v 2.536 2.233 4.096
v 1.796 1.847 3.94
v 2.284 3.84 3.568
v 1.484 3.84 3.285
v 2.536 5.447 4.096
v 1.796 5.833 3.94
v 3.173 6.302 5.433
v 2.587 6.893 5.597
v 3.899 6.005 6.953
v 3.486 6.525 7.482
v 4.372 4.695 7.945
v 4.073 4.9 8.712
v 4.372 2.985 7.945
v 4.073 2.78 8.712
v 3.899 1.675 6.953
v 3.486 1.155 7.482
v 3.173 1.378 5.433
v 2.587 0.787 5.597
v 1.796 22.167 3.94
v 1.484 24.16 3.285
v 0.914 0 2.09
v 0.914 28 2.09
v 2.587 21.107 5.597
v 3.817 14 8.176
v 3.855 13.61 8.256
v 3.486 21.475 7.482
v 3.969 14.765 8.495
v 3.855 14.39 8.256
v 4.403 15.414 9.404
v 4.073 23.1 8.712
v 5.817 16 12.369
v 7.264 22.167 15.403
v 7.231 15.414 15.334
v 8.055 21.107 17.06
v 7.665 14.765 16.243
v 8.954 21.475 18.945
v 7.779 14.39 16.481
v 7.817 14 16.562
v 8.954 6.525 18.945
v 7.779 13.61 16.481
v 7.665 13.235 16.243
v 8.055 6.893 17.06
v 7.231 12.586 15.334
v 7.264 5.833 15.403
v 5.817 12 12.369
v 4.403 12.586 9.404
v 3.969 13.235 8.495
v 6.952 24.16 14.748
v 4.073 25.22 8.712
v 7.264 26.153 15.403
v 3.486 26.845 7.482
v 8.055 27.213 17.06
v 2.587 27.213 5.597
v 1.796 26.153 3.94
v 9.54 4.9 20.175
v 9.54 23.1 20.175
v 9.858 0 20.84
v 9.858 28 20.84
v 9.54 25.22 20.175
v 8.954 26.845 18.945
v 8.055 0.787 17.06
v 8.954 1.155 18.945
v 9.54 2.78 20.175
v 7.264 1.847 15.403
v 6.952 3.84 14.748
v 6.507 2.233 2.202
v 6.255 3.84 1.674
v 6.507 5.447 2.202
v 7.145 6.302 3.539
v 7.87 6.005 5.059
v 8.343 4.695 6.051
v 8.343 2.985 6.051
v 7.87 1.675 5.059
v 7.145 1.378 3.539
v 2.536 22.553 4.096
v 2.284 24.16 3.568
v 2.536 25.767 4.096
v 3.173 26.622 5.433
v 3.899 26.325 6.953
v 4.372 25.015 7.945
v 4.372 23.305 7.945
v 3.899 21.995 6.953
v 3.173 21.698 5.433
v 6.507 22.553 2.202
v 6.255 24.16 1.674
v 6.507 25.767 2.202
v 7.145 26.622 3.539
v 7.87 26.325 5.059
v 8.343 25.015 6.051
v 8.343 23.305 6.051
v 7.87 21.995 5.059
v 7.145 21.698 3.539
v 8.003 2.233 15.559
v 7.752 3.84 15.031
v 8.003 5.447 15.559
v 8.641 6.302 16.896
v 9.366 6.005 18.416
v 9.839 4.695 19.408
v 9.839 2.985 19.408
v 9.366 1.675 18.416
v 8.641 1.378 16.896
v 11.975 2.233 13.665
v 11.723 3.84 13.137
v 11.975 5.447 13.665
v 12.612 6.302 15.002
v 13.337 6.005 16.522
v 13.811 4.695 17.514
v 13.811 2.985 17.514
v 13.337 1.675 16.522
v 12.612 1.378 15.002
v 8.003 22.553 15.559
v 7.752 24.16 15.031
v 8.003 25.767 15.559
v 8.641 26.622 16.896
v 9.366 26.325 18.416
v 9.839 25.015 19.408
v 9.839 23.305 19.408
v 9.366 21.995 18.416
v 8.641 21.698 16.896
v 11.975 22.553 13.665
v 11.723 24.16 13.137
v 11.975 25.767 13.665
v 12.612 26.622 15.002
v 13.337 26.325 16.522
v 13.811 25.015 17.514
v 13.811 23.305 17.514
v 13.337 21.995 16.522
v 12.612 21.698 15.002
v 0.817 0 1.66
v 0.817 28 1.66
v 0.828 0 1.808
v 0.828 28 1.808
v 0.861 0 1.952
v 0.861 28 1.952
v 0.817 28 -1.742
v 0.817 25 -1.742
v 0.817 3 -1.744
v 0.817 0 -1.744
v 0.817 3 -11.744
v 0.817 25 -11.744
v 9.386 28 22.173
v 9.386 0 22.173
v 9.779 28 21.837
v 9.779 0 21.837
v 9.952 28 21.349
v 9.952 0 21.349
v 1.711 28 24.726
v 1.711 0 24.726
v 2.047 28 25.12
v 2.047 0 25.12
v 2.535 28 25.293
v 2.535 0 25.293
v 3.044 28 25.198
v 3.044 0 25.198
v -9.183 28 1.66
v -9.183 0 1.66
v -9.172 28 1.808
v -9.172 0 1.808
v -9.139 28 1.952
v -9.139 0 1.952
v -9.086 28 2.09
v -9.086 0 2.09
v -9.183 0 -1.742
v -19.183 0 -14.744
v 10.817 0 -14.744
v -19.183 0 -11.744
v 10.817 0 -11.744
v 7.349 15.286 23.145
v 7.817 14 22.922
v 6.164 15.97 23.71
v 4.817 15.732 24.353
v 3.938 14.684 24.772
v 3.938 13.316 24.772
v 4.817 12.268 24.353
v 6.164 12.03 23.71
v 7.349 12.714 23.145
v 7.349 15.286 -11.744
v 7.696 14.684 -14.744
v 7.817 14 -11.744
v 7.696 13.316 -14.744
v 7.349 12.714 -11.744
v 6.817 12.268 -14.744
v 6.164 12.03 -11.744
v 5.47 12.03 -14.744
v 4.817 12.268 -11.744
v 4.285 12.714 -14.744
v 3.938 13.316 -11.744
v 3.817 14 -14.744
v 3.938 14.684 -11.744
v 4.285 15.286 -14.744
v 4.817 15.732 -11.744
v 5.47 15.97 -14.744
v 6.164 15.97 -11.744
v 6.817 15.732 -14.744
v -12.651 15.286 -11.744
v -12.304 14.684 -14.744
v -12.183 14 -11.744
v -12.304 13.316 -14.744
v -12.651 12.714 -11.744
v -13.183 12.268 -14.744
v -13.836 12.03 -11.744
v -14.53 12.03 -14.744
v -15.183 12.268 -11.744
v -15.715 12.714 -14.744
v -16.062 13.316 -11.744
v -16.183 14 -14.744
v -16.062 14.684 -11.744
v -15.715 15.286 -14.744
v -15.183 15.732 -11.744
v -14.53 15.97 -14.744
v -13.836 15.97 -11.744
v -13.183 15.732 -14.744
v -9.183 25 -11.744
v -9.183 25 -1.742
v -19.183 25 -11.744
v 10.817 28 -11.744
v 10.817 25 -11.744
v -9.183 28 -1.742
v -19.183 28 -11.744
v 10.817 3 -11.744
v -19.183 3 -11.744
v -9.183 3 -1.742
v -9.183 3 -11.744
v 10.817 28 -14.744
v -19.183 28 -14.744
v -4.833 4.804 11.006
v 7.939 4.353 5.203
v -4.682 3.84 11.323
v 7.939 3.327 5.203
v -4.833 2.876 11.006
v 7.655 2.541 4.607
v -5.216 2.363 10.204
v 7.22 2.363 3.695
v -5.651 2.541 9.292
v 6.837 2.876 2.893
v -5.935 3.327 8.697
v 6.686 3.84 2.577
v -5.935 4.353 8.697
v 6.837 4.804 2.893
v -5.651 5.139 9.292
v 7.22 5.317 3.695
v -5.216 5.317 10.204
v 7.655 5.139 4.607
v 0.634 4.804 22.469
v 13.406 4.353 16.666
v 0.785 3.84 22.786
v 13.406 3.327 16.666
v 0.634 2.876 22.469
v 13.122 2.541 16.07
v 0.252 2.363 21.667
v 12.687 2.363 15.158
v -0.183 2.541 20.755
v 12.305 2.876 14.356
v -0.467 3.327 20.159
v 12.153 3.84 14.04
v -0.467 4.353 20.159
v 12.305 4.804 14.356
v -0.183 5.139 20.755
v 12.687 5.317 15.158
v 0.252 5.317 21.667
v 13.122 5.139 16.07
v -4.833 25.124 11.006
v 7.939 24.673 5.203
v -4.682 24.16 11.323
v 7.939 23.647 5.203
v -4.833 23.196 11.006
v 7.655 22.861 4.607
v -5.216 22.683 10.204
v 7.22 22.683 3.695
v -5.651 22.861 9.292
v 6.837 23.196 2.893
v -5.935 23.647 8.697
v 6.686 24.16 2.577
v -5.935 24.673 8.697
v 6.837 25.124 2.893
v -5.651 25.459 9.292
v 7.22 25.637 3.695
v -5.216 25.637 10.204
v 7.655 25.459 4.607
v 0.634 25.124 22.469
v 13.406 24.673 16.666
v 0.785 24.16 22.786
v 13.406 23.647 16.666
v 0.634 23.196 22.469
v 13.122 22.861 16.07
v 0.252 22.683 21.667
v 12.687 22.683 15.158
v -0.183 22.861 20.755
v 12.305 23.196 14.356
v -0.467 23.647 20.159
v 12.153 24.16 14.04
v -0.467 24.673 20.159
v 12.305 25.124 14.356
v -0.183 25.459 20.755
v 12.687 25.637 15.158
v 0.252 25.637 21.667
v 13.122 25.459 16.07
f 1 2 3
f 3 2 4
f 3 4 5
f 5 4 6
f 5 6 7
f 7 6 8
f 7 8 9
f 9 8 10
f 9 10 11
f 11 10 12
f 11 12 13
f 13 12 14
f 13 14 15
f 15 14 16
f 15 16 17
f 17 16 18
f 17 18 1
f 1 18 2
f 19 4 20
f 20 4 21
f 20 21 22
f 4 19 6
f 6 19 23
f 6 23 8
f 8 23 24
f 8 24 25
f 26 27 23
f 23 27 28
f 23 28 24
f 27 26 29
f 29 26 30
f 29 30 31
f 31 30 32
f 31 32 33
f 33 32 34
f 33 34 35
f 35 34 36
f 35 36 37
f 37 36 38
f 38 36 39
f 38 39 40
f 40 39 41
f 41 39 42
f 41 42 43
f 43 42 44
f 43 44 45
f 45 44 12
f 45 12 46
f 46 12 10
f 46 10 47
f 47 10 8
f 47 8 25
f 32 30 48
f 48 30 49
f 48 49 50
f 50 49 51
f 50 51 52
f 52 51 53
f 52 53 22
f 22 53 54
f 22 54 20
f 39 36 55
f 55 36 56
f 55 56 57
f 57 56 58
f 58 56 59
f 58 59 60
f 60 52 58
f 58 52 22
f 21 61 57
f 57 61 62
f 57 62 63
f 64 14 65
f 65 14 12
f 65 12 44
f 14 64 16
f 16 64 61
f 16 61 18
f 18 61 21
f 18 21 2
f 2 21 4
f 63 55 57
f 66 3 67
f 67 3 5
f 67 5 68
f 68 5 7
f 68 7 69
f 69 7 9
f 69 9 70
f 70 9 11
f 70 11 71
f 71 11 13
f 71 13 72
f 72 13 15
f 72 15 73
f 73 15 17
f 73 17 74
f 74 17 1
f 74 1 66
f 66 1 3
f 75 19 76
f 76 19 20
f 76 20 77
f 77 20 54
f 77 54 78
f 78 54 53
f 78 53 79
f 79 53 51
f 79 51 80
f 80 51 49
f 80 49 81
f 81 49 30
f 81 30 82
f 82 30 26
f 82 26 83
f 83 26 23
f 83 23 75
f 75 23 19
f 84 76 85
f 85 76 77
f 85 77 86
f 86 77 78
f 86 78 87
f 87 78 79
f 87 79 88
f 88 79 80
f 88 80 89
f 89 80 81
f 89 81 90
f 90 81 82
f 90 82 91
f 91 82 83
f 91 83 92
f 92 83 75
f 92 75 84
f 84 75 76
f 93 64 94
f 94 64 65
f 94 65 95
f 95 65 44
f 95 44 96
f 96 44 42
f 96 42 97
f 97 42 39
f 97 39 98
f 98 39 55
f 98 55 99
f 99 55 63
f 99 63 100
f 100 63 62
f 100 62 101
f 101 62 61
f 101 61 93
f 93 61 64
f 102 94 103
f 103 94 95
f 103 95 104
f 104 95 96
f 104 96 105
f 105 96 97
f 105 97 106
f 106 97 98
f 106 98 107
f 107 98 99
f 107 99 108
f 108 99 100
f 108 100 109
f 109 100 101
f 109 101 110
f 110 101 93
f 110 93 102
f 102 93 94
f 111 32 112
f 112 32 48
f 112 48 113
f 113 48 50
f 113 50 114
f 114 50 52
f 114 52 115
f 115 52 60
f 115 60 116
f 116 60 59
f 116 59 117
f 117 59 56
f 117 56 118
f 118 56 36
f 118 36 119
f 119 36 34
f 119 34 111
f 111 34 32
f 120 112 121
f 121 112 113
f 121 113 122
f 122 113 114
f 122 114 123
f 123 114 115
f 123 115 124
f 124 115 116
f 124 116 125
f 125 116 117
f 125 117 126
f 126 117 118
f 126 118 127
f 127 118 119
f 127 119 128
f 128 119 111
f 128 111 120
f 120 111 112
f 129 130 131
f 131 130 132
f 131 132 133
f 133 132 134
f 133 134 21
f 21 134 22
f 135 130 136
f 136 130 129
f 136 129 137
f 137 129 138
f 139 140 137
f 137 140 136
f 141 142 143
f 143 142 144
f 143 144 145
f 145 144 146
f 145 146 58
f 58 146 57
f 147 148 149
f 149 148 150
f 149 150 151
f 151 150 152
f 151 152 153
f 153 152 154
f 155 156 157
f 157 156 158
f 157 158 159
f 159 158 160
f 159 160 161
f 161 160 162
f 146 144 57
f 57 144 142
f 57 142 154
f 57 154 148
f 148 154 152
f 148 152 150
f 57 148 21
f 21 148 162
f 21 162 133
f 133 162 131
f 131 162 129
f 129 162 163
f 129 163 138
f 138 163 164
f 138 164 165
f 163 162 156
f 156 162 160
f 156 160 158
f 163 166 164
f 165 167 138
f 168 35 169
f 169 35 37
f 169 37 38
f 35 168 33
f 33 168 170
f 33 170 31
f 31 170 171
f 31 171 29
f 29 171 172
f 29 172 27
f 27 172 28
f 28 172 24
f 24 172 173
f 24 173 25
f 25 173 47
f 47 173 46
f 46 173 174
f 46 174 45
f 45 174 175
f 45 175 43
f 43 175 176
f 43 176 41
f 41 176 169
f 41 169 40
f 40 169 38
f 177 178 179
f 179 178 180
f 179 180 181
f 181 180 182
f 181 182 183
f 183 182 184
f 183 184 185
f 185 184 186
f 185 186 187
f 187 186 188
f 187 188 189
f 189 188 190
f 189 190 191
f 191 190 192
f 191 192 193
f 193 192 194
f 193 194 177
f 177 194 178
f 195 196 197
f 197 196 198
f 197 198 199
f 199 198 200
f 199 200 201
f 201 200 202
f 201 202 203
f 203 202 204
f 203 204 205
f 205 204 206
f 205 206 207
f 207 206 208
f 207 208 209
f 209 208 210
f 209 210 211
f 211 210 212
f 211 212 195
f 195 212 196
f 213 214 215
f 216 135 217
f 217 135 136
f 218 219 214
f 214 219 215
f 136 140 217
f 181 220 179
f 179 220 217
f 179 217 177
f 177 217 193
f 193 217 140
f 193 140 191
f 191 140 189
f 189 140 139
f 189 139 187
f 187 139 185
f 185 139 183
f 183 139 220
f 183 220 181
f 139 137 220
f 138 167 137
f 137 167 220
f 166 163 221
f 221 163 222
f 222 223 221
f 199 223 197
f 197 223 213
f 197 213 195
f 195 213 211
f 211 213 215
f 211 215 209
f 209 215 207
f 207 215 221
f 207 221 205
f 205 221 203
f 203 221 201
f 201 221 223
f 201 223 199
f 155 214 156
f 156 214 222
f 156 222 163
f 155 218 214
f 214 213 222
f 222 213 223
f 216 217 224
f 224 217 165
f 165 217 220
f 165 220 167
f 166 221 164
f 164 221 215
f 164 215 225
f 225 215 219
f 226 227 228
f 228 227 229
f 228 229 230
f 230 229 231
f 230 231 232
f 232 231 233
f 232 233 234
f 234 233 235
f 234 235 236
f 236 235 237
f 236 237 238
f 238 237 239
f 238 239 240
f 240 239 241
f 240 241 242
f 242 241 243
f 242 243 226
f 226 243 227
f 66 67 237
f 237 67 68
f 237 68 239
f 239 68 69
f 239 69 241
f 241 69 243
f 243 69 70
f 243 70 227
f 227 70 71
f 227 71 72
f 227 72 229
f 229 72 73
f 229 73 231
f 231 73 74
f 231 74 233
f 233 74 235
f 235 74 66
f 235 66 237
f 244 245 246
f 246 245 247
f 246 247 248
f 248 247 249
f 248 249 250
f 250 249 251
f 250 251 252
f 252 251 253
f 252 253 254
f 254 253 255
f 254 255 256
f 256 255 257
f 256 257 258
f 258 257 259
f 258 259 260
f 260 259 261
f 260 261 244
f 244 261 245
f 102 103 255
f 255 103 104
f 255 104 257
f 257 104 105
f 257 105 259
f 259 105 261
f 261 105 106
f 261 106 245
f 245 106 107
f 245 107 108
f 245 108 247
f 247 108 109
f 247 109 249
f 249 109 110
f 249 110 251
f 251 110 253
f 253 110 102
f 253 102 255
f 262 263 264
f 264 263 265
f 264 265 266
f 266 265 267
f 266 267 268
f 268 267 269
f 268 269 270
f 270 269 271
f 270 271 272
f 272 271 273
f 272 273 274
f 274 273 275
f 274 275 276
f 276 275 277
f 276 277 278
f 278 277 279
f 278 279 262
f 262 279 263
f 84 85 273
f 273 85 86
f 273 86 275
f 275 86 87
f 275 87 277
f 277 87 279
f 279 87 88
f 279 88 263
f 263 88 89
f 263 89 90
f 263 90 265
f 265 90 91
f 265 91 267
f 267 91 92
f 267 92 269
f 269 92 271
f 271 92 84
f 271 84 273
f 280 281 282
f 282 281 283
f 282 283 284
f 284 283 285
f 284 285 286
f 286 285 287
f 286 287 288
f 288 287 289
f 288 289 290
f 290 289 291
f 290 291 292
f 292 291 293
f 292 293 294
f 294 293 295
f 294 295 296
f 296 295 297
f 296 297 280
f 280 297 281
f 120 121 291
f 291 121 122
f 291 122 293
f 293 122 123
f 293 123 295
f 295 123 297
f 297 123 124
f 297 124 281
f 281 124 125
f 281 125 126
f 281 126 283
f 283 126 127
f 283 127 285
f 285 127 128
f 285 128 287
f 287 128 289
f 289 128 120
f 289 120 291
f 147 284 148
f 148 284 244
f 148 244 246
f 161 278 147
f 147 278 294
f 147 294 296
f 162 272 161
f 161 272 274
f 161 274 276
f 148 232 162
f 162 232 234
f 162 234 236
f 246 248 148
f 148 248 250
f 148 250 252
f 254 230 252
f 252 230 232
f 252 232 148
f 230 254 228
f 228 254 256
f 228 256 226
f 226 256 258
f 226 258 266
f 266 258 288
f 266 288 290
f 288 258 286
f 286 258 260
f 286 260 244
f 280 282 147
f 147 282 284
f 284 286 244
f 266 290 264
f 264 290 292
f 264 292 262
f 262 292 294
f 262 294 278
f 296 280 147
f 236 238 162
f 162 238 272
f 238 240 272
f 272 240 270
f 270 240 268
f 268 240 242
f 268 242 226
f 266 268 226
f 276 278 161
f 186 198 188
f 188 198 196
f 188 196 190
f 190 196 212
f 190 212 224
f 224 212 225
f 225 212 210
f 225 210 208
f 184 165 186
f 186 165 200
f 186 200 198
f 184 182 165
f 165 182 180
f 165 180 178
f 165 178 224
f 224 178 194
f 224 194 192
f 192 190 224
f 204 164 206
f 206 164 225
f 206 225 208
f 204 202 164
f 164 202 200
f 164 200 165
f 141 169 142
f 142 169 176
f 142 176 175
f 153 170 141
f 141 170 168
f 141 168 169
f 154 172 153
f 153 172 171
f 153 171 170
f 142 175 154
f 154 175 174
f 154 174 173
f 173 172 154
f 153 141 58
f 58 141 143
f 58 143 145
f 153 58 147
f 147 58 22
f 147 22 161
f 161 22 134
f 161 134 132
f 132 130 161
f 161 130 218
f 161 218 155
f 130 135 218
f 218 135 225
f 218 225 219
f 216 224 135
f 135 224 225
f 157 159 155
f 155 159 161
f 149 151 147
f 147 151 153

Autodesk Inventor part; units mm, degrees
ref_plane "YZ-Ebene" through (0, 0, 0) normal (1, 0, 0) x (0, 1, 0)
ref_plane "XZ-Ebene" through (0, 0, 0) normal (0, 1, 0) x (-1, 0, 0)
ref_plane "XY-Ebene" through (0, 0, 0) normal (0, 0, 1) x (1, 0, 0)
sketch "Skizze1" plane through (0, 0, 0) normal (0, 1, 0) x (-1, 0, 0)
  line L0 (-0.8169, 1.8861) -> (9.1831, 1.8861)
  line L1 (9.1831, 1.8861) -> (9.1831, -14.7439)
  line L2 (9.1831, -14.7439) -> (-0.8169, -14.7439)
  line L3 (-0.8169, -14.7439) -> (-0.8169, 1.8861)
  line L4 (-0.8169, 1.8861) -> (-10.2882, 21.743)
  line L5 (9.1831, 14.3218) -> (9.1831, 1.8861)
  line L6 (9.1831, 1.8861) -> (-2.1416, 25.6287)
  line L7 (-2.1416, 25.6287) -> (-10.2882, 21.743)
  point P0 (-5.5526, 11.8145)
  point P1 (9.1831, -3.6782)
  dimension "d23" = 154.5
  dimension "d24" = 10
  dimension "d25" = 22
  dimension "d26" = 16.63
  dimension "d27" = 9.9284
extrude "Extrusion3" add sketch "Skizze1" along normal blind 28
sketch "Skizze4" plane through (0.8169, 0, 1.8861) normal (0.9026, 0, -0.4305) x (-0.4305, 0, -0.9026)
  circle A0 centre (-4.65, 24.16) radius 2.5
  circle A1 centre (-4.65, 3.84) radius 2.5
  circle A2 centre (-17.35, 3.84) radius 2.5
  circle A3 centre (-17.35, 24.16) radius 2.5
  line L0 (-22, 28) -> (0, 28) projected
  line L1 (-22, 0) -> (-22, 28) projected
  line L2 (0, 0) -> (0, 28) projected
  circle A4 centre (-4.65, 24.16) radius 1.5
  circle A5 centre (-4.65, 3.84) radius 1.5
  circle A6 centre (-17.35, 3.84) radius 1.5
  circle A7 centre (-17.35, 24.16) radius 1.5
  point P0 (2.0541, 0)
  dimension "d35" = 5
  dimension "d36" = 5
  dimension "d37" = 5
  dimension "d38" = 5
  dimension "d39" = 20.32
  dimension "d40" = 20.32
  dimension "d41" = 12.7
  dimension "d42" = 12.7
  dimension "d43" = 3.84
  dimension "d45" = 4.65
  dimension "d46" = 4.65
  dimension "d47" = 3.84
  dimension "d48" = 3
  dimension "d49" = 3
  dimension "d50" = 3
  dimension "d51" = 3
extrude "Extrusion4" add sketch "Skizze4" along normal blind 5
extrude "Extrusion5" cut sketch "Skizze4" against normal blind 10 contours A4 | A5 | A6 | A7
sketch "Skizze6" plane through (-9.1831, 0, -14.7439) normal (-1, 0, 0) x (0, 0, 1)
  line L0 (0, 0) -> (16.63, 0) projected
  line L1 (0, 28) -> (16.63, 28) projected
  line L2 (0, 0) -> (3, 0)
  line L3 (3, 0) -> (3, 28)
  line L4 (3, 28) -> (0, 28)
  line L5 (0, 28) -> (0, 0)
  point P0 (14.7439, 0)
  point P1 (36.0154, 0)
  point P2 (36.0154, 28)
  point P3 (3, 0)
  dimension "d56" = 3
extrude "Extrusion6" add sketch "Skizze6" along normal blind 10
sketch "Skizze7" plane through (0.8169, 0, 1.8861) normal (1, 0, 0) x (0, 0, -1)
  line L0 (16.63, 0) -> (16.63, 28) projected
  line L1 (0, 0) -> (16.63, 0) projected
  line L2 (16.63, 28) -> (13.63, 28)
  line L3 (13.63, 28) -> (13.63, 0)
  line L4 (13.63, 0) -> (16.63, 0)
  line L5 (16.63, 0) -> (16.63, 28)
  point P0 (1.8861, 0)
  dimension "d59" = 3
extrude "Extrusion7" add sketch "Skizze7" along normal blind 10
sketch "Skizze8" plane through (0, 0, 0) normal (0, -1, 0) x (1, 0, 0)
  line L0 (0.8169, -11.7439) -> (10.8169, -11.7439) projected
  line L1 (10.8169, -11.7439) -> (0.8148, -1.7417)
  line L2 (10.8169, -11.7439) -> (24.9621, -11.7439) construction
  line L3 (-9.1831, -11.7439) -> (-19.1831, -11.7439) projected
  line L4 (-19.1831, -11.7439) -> (-9.1831, -1.7417)
  line L5 (-9.1831, -11.7439) -> (-9.1831, 1.8861) projected
  line L6 (10.8169, -14.7439) -> (10.8169, -11.7439) projected
  line L7 (10.8169, -11.7439) -> (-19.1831, -11.7439)
  line L8 (-9.1831, -1.7417) -> (0.8148, -1.7417)
  point P0 (0, 0)
  point P1 (-9.1831, 3.2715)
  point P2 (-9.1831, -11.7439)
  dimension "d62" = 135
extrude "Extrusion8" add sketch "Skizze8" against normal blind 3
sketch "Skizze9" plane through (0, 28, 0) normal (0, 1, 0) x (1, 0, 0)
  line L0 (-9.1831, 11.7439) -> (-19.1831, 11.7439) projected
  line L1 (-19.1831, 11.7439) -> (-9.1831, 1.7417)
  line L2 (-9.1831, 1.7417) -> (0.8169, 1.7417)
  line L3 (0.8169, -1.8861) -> (0.8169, 11.7439) projected
  line L4 (10.8169, 14.7439) -> (10.8169, 11.7439) projected
  line L5 (10.8169, 11.7439) -> (0.8169, 1.7417)
  line L6 (-19.1831, 11.7439) -> (10.8169, 11.7439)
  point P0 (0, 0)
  point P1 (-9.1831, 11.7439)
extrude "Extrusion9" add sketch "Skizze9" against normal blind 3
sketch "Skizze10" plane through (-19.1831, 0, -14.7439) normal (0, 0, -1) x (-1, 0, 0)
  circle A0 centre (-5, 14) radius 2
  circle A1 centre (-25, 14) radius 2
  line L0 (0, 28) -> (0, 0) projected
  line L1 (-30, 0) -> (-30, 28) projected
  line L2 (0, 0) -> (-30, 0) projected
  point P0 (-19.1831, 0)
  dimension "d67" = 4
  dimension "d68" = 4
  dimension "d69" = 5
  dimension "d70" = 5
  dimension "d71" = 14
  dimension "d72" = 14
extrude "Extrusion10" cut sketch "Skizze10" against normal blind 50
sketch "Skizze11" plane through (0, 28, 0) normal (0, 1, 0) x (1, 0, 0)
  line L0 (10.8169, 14.7439) -> (10.8169, 11.7439) projected
  line L1 (-19.1831, 14.7439) -> (10.8169, 14.7439) projected
  line L2 (-19.1831, 11.7439) -> (-19.1831, 14.7439) projected
  line L3 (-19.1831, 11.7439) -> (-9.1831, 1.7417) projected
  line L4 (-9.1831, 1.7417) -> (-9.1831, -1.8861) projected
  line L5 (-9.1831, -1.8861) -> (2.1416, -25.6287) projected
  line L6 (2.1416, -25.6287) -> (10.2882, -21.743) projected
  line L7 (10.2882, -21.743) -> (0.8169, -1.8861) projected
  line L8 (0.8169, -1.8861) -> (0.8169, 1.7417) projected
  line L9 (0.8169, 1.7417) -> (10.8169, 11.7439) projected
  line L10 (-9.1831, 1.7417) -> (-9.1831, -1.8861) projected
  line L11 (-9.1831, -1.8861) -> (2.1416, -25.6287) projected
  line L12 (-9.1831, 1.7417) -> (-9.1831, -1.6598)
  line L13 (-9.0856, -2.0903) -> (1.7111, -24.7261)
  line L14 (2.1416, -25.6287) -> (10.2882, -21.743) projected
  line L15 (3.0442, -25.1982) -> (9.3856, -22.1735)
  line L16 (0.8169, -1.8861) -> (0.8169, 1.7417) projected
  line L17 (0.8169, 19.7417) -> (0.8169, -1.6598)
  line L18 (0.9144, -2.0903) -> (9.8577, -20.8404)
  arc A0 (-9.1831, -1.6598) -> (-9.0856, -2.0903) centre (-8.1831, -1.6598) ccw
  arc A1 (1.7111, -24.7261) -> (3.0442, -25.1982) centre (2.6137, -24.2956) ccw
  arc A2 (9.3856, -22.1735) -> (9.8577, -20.8404) centre (8.9551, -21.2709) ccw
  arc A3 (0.8169, -1.6598) -> (0.9144, -2.0903) centre (1.8169, -1.6598) ccw
  point P0 (0, 0)
  point P1 (9.3856, -22.1735)
  point P2 (3.0442, -25.1982)
  point P3 (1.7111, -24.7261)
  point P4 (-9.1831, -1.6598)
  point P5 (0.9144, -2.0903)
  point P6 (0.8169, -1.6598)
  dimension "d75" = 1
  dimension "d76" = 1
extrude "Extrusion11" cut sketch "Skizze11" against normal blind 30 contours L7 L6 A2 | A0 L5 L4 | L6 L5 A1
extrude "Extrusion12" add sketch "Skizze11" against normal blind 28 contours A3 L7 L8
chamfer "Fase3" distance 0.6 angle 45 1 edges at (9.3626, 24.16, 19.8024)
chamfer "Fase4" distance 0.6 angle 45 1 edges at (9.3626, 3.84, 19.8024)
chamfer "Fase5" distance 0.6 angle 45 2 edges at (3.8951, 24.16, 8.3396) (3.8951, 3.84, 8.3396)
properties part number "ir_camera_mount"
